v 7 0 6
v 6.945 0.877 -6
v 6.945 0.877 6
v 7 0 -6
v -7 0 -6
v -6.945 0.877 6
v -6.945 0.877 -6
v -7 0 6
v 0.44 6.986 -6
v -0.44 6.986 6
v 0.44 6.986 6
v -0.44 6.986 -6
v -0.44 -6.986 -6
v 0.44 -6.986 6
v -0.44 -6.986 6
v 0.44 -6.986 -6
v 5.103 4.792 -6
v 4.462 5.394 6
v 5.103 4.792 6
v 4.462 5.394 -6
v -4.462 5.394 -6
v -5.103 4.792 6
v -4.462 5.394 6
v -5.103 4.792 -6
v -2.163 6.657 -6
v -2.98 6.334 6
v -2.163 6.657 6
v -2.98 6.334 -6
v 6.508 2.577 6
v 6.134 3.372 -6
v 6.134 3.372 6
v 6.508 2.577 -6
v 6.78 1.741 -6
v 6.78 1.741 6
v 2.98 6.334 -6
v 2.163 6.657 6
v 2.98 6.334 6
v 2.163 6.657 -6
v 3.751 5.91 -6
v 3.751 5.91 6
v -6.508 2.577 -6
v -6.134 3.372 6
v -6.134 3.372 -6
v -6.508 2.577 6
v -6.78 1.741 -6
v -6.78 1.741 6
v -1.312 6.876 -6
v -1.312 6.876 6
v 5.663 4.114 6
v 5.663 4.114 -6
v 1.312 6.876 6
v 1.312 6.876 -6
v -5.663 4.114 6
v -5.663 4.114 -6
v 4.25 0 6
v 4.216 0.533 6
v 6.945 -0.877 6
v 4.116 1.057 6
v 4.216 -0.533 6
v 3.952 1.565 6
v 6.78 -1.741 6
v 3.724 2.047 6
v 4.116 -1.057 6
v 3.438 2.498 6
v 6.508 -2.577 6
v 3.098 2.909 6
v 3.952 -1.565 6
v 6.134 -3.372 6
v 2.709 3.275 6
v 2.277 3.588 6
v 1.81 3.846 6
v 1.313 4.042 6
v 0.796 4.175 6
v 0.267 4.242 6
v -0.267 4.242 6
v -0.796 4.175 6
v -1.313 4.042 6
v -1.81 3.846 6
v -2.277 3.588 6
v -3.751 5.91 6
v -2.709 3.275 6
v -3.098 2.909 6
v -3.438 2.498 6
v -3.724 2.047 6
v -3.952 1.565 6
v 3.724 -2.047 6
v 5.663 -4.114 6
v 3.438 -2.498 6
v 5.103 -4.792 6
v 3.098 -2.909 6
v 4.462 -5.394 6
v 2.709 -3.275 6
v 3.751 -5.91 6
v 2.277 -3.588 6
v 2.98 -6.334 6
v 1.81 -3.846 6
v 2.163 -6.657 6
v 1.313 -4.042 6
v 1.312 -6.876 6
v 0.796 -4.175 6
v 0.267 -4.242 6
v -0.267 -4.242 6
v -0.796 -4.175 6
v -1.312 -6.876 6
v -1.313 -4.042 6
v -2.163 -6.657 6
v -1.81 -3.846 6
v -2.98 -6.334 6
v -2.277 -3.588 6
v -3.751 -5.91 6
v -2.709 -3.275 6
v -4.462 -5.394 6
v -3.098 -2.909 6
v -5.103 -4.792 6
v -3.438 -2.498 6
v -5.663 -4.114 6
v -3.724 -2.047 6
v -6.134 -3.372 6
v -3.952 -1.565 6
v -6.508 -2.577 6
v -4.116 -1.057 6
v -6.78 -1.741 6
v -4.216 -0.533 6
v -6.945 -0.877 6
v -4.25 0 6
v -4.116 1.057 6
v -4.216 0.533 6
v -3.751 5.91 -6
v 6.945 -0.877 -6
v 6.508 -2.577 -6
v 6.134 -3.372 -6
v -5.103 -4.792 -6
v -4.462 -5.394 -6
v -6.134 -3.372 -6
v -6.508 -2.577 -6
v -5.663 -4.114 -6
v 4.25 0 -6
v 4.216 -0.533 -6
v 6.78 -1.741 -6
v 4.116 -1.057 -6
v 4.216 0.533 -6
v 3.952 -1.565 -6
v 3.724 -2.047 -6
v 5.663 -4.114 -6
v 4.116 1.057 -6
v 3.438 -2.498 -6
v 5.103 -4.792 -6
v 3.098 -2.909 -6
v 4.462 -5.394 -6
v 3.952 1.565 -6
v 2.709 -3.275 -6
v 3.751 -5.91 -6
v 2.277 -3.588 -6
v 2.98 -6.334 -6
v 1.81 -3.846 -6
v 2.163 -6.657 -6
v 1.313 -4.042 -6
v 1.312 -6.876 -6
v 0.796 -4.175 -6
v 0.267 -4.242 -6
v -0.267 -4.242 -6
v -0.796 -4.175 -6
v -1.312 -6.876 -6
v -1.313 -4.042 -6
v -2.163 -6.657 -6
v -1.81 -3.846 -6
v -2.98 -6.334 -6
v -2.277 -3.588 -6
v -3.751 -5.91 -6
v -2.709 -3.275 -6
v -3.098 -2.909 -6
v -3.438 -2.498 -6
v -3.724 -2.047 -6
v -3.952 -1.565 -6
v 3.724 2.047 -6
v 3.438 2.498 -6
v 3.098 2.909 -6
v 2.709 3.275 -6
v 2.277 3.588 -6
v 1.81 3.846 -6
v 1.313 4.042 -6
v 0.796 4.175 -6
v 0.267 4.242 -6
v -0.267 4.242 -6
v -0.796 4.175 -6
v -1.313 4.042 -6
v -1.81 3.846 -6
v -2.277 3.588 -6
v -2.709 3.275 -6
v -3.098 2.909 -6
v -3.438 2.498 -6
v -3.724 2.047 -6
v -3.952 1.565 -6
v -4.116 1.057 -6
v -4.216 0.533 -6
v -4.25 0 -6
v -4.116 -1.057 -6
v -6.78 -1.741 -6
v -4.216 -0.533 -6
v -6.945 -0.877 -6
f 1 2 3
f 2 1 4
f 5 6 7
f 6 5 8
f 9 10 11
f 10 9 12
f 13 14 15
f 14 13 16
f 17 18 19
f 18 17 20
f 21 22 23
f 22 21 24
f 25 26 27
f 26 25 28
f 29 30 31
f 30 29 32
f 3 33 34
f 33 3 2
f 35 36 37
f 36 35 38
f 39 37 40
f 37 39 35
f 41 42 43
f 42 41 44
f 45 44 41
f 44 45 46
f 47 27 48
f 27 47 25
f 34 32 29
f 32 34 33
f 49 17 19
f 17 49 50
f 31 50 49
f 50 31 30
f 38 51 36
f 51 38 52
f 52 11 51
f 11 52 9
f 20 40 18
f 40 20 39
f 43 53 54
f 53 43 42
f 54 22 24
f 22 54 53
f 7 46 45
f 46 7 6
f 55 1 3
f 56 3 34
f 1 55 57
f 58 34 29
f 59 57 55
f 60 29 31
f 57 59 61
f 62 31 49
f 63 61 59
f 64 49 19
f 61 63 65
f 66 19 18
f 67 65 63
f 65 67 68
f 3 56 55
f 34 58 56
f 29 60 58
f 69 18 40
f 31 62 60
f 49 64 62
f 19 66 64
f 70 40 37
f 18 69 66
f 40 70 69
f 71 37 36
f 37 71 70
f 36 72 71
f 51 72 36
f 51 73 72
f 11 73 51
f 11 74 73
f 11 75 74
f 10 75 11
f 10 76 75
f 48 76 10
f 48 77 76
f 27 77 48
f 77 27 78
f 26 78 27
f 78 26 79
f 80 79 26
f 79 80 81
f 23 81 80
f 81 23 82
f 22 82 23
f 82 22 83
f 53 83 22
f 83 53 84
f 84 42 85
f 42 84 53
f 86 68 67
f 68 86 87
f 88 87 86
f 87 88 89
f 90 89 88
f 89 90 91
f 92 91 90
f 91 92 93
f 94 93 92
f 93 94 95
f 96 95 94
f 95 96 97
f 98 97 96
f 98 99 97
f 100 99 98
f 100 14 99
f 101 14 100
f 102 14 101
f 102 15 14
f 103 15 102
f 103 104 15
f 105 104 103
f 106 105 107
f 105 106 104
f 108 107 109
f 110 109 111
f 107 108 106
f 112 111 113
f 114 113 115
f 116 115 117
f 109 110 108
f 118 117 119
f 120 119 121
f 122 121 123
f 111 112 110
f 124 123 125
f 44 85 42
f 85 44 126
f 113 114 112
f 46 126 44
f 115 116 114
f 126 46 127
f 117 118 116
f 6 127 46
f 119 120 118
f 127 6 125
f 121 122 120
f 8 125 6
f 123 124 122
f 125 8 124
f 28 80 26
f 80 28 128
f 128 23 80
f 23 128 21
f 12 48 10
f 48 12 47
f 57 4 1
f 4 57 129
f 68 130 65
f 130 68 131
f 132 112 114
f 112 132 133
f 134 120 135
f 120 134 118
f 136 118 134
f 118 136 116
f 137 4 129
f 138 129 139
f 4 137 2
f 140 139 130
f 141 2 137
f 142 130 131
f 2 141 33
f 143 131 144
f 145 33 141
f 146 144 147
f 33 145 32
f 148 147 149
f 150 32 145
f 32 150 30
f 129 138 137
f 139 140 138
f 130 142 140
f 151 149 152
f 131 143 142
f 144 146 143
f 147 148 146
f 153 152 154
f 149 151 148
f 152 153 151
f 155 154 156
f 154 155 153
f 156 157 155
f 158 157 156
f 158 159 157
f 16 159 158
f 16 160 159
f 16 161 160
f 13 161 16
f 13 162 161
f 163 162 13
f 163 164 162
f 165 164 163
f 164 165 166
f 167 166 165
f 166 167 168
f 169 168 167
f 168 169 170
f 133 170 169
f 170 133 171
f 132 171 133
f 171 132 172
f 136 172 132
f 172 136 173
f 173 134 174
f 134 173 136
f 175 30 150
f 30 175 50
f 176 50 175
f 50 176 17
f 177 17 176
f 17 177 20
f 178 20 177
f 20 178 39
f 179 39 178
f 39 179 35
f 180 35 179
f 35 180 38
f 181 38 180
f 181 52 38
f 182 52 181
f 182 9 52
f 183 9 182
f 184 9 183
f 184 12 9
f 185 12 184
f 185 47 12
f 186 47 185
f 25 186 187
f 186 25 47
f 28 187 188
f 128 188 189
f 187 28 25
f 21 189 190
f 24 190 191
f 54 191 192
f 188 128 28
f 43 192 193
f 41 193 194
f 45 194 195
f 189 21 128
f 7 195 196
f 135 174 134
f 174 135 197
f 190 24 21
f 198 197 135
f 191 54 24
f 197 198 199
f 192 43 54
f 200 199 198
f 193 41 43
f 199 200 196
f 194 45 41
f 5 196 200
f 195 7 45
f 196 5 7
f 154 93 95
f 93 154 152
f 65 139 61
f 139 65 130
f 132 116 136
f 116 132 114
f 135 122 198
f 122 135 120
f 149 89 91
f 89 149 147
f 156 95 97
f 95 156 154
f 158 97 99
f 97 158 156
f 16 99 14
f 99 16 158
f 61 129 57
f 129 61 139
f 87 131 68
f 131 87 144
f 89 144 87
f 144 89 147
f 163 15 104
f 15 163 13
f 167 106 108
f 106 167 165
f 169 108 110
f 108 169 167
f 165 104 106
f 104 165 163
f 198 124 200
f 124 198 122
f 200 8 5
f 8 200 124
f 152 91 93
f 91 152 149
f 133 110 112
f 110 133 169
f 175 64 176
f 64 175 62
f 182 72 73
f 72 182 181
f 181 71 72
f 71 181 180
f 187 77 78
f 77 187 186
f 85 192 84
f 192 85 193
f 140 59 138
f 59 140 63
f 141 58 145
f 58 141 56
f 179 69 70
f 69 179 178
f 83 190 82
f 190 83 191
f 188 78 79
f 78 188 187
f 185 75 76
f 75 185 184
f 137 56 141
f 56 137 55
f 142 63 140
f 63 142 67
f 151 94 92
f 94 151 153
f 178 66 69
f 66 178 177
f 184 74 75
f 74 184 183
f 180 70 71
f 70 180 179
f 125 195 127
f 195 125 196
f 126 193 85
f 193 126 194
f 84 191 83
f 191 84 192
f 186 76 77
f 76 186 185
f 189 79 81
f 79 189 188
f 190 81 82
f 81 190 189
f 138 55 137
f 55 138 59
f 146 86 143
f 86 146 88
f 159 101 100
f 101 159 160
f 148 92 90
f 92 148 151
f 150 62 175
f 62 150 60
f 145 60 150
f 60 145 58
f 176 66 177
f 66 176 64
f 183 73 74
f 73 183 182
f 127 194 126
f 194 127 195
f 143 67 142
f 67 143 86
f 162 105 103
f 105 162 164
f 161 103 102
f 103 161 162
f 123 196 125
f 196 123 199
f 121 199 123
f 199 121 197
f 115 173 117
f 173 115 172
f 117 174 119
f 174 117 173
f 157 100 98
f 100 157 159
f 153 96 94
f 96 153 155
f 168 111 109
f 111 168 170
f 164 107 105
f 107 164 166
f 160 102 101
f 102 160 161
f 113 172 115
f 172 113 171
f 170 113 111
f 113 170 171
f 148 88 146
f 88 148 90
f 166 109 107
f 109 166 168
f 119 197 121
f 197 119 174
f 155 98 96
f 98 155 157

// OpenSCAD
$fn = 50;


difference() {
	union() {
		translate(v = [0, 0, -6.0000000000]) {
			cylinder(h = 12, r = 7.0000000000);
		}
	}
	union() {
		translate(v = [0, 0, -100.0000000000]) {
			cylinder(h = 200, r = 4.2500000000);
		}
	}
}
